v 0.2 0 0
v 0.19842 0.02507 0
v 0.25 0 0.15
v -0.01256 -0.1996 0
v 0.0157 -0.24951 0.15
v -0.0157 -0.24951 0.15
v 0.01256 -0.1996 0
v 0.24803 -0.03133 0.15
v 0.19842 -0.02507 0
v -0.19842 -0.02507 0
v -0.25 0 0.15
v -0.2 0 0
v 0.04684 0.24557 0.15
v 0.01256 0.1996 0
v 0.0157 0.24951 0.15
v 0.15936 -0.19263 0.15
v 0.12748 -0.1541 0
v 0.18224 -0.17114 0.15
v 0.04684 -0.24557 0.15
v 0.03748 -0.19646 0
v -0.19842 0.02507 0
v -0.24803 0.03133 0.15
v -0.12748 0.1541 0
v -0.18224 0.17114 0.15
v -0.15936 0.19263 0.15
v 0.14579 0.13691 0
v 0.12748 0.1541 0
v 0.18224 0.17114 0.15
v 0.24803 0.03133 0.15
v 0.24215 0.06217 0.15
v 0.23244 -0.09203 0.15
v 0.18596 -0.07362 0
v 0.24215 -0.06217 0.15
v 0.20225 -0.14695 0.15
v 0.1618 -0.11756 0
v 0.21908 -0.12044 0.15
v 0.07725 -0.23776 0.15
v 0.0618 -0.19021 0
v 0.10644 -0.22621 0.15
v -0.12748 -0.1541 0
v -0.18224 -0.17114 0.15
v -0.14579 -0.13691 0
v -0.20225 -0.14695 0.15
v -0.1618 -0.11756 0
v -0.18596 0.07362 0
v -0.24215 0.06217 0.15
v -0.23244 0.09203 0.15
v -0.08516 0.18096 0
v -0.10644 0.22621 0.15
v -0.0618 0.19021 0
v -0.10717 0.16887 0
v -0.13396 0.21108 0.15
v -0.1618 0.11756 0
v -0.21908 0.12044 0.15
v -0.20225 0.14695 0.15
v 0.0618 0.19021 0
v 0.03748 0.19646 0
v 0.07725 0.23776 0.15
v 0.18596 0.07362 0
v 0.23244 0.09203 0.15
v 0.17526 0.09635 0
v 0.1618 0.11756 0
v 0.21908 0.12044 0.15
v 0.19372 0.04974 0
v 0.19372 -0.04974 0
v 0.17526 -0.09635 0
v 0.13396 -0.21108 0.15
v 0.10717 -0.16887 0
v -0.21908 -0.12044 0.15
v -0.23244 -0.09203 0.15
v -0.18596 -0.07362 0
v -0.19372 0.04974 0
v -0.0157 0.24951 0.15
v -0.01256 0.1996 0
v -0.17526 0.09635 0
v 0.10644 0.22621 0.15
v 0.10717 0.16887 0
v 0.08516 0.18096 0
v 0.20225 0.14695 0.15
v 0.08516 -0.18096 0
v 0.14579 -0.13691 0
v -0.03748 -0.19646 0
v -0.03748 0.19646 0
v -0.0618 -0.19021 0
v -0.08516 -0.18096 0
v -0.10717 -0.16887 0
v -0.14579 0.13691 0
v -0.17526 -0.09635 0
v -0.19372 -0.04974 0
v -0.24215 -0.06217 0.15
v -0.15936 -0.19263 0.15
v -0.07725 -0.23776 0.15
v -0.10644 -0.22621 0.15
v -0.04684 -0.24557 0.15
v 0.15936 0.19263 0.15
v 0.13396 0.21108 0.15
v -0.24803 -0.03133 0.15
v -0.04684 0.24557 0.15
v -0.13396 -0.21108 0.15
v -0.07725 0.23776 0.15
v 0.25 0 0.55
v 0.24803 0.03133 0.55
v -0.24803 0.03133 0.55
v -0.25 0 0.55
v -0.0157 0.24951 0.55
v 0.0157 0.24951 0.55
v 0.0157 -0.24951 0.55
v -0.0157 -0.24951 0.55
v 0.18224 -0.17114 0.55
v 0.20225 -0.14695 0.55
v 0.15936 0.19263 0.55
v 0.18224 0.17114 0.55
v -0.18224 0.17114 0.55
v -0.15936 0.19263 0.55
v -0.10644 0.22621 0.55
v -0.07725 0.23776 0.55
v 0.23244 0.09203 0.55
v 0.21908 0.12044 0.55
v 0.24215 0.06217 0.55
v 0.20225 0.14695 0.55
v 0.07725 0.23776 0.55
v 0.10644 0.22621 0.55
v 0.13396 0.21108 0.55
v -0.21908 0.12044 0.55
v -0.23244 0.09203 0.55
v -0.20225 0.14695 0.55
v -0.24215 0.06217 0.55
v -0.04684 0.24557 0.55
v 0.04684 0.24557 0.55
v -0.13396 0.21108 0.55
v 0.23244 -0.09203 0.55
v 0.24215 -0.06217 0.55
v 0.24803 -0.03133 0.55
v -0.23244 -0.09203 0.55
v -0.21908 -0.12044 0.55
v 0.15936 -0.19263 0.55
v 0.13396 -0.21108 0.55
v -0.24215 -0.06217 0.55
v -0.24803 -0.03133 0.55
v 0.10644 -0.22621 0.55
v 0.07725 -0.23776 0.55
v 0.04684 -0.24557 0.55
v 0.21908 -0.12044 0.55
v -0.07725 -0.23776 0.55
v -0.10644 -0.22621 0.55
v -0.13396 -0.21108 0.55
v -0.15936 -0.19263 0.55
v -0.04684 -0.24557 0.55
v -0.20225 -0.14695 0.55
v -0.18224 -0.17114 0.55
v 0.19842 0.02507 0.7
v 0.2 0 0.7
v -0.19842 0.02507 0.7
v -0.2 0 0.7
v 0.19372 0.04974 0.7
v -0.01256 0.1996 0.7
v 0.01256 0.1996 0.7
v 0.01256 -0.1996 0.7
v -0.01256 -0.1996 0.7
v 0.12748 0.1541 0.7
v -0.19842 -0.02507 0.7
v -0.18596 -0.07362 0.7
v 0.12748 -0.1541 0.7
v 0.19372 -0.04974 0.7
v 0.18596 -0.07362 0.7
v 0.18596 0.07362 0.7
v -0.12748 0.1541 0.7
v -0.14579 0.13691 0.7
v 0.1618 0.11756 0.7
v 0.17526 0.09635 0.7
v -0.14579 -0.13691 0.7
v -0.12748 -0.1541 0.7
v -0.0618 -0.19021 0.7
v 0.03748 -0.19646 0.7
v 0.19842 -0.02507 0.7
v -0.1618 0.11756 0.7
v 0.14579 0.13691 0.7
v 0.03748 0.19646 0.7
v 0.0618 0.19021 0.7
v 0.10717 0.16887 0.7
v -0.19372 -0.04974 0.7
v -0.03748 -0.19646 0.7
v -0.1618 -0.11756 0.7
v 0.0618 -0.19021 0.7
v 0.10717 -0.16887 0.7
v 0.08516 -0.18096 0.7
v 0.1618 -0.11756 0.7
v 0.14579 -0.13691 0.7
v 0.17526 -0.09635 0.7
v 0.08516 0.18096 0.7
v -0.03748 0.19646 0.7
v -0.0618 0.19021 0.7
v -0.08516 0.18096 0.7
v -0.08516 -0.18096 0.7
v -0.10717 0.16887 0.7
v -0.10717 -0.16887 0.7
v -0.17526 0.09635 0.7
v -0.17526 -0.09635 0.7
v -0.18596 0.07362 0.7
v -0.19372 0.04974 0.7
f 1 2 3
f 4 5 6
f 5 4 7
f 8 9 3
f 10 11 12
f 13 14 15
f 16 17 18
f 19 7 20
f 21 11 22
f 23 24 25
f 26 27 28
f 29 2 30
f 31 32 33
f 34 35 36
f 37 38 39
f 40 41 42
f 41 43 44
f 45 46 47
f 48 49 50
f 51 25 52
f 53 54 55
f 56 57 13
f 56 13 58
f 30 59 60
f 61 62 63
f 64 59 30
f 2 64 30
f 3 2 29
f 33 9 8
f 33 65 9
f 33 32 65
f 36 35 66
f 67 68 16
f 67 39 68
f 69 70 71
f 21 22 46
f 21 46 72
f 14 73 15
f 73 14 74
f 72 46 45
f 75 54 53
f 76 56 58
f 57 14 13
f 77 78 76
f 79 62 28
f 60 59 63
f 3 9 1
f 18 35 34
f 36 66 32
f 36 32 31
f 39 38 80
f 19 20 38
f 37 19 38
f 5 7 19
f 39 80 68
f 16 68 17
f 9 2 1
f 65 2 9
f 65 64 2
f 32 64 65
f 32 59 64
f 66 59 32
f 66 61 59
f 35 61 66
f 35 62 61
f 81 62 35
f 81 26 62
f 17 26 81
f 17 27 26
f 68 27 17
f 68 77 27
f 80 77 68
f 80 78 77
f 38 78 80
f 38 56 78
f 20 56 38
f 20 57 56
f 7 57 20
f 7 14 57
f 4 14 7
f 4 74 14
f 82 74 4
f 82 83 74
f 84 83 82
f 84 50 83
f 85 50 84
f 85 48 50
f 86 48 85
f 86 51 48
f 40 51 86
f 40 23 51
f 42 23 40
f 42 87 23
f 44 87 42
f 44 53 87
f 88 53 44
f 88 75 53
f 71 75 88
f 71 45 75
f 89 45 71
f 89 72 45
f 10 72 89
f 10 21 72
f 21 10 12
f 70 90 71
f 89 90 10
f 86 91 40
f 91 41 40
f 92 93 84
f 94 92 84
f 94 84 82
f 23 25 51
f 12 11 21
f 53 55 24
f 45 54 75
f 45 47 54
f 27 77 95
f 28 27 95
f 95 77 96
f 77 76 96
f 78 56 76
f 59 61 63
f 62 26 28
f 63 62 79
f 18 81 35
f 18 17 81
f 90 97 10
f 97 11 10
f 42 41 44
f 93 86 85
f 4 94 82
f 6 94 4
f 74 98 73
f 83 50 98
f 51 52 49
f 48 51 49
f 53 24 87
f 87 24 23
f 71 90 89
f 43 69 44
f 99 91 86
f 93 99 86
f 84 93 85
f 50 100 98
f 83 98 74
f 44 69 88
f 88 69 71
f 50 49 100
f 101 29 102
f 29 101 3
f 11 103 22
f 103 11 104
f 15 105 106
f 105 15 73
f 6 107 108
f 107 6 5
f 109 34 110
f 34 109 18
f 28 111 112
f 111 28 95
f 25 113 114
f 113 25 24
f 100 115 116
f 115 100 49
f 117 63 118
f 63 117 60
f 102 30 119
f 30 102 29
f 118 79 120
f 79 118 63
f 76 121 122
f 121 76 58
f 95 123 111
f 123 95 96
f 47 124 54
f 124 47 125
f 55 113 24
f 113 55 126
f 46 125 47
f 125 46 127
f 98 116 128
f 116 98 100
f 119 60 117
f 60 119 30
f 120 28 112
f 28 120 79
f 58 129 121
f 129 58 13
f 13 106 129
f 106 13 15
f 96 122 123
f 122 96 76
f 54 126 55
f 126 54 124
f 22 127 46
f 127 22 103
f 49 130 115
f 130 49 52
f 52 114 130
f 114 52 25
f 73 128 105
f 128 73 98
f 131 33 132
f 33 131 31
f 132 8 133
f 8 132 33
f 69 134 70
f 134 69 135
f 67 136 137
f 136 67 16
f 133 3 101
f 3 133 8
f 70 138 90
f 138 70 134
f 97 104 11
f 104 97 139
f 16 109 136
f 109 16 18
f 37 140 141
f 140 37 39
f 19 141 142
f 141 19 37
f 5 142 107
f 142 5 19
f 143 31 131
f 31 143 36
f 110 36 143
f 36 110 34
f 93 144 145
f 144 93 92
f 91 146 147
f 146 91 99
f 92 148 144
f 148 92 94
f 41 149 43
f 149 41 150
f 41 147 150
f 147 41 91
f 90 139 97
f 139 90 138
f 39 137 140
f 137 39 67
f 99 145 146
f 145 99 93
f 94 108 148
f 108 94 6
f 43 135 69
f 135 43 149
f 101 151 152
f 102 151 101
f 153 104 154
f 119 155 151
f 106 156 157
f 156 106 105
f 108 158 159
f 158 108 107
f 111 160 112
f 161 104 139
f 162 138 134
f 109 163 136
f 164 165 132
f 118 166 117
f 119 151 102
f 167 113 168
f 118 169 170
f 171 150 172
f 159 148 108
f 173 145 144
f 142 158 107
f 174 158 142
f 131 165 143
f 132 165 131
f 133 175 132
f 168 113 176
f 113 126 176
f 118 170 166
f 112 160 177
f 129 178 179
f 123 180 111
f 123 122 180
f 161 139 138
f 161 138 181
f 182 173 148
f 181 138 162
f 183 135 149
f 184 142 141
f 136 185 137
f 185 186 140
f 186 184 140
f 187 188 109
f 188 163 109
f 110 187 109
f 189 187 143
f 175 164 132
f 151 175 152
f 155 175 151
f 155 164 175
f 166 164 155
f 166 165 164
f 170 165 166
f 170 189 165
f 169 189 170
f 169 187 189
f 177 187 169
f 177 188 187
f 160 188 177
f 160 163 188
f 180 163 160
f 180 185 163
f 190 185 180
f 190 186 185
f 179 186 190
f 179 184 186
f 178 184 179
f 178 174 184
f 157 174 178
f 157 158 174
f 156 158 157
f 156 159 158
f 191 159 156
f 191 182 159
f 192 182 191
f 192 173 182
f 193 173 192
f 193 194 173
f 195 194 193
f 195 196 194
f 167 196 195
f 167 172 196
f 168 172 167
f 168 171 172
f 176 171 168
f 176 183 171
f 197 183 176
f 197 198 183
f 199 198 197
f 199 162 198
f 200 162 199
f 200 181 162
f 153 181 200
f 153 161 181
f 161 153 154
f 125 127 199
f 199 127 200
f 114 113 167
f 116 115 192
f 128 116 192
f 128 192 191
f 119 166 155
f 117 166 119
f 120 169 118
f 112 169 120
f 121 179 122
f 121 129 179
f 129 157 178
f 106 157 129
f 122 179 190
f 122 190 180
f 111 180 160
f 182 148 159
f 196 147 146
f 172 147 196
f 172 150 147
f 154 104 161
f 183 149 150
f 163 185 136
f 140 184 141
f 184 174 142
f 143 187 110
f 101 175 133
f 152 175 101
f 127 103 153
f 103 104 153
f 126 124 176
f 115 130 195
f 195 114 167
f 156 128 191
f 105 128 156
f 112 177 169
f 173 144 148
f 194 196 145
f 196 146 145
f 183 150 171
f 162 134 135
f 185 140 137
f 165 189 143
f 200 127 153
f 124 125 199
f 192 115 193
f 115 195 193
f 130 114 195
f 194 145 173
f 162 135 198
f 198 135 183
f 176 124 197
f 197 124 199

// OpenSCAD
union() {
    cylinder(h=0.15,r1=0.2,r2=0.25, $fn=50);
    translate([0,0,0.15])
        cylinder(h=0.4,r1=0.25, r2=0.25, $fn=50);
    translate([0,0,0.55])
        cylinder(h=0.15,r1=0.25,r2=0.2, $fn=50);
}
